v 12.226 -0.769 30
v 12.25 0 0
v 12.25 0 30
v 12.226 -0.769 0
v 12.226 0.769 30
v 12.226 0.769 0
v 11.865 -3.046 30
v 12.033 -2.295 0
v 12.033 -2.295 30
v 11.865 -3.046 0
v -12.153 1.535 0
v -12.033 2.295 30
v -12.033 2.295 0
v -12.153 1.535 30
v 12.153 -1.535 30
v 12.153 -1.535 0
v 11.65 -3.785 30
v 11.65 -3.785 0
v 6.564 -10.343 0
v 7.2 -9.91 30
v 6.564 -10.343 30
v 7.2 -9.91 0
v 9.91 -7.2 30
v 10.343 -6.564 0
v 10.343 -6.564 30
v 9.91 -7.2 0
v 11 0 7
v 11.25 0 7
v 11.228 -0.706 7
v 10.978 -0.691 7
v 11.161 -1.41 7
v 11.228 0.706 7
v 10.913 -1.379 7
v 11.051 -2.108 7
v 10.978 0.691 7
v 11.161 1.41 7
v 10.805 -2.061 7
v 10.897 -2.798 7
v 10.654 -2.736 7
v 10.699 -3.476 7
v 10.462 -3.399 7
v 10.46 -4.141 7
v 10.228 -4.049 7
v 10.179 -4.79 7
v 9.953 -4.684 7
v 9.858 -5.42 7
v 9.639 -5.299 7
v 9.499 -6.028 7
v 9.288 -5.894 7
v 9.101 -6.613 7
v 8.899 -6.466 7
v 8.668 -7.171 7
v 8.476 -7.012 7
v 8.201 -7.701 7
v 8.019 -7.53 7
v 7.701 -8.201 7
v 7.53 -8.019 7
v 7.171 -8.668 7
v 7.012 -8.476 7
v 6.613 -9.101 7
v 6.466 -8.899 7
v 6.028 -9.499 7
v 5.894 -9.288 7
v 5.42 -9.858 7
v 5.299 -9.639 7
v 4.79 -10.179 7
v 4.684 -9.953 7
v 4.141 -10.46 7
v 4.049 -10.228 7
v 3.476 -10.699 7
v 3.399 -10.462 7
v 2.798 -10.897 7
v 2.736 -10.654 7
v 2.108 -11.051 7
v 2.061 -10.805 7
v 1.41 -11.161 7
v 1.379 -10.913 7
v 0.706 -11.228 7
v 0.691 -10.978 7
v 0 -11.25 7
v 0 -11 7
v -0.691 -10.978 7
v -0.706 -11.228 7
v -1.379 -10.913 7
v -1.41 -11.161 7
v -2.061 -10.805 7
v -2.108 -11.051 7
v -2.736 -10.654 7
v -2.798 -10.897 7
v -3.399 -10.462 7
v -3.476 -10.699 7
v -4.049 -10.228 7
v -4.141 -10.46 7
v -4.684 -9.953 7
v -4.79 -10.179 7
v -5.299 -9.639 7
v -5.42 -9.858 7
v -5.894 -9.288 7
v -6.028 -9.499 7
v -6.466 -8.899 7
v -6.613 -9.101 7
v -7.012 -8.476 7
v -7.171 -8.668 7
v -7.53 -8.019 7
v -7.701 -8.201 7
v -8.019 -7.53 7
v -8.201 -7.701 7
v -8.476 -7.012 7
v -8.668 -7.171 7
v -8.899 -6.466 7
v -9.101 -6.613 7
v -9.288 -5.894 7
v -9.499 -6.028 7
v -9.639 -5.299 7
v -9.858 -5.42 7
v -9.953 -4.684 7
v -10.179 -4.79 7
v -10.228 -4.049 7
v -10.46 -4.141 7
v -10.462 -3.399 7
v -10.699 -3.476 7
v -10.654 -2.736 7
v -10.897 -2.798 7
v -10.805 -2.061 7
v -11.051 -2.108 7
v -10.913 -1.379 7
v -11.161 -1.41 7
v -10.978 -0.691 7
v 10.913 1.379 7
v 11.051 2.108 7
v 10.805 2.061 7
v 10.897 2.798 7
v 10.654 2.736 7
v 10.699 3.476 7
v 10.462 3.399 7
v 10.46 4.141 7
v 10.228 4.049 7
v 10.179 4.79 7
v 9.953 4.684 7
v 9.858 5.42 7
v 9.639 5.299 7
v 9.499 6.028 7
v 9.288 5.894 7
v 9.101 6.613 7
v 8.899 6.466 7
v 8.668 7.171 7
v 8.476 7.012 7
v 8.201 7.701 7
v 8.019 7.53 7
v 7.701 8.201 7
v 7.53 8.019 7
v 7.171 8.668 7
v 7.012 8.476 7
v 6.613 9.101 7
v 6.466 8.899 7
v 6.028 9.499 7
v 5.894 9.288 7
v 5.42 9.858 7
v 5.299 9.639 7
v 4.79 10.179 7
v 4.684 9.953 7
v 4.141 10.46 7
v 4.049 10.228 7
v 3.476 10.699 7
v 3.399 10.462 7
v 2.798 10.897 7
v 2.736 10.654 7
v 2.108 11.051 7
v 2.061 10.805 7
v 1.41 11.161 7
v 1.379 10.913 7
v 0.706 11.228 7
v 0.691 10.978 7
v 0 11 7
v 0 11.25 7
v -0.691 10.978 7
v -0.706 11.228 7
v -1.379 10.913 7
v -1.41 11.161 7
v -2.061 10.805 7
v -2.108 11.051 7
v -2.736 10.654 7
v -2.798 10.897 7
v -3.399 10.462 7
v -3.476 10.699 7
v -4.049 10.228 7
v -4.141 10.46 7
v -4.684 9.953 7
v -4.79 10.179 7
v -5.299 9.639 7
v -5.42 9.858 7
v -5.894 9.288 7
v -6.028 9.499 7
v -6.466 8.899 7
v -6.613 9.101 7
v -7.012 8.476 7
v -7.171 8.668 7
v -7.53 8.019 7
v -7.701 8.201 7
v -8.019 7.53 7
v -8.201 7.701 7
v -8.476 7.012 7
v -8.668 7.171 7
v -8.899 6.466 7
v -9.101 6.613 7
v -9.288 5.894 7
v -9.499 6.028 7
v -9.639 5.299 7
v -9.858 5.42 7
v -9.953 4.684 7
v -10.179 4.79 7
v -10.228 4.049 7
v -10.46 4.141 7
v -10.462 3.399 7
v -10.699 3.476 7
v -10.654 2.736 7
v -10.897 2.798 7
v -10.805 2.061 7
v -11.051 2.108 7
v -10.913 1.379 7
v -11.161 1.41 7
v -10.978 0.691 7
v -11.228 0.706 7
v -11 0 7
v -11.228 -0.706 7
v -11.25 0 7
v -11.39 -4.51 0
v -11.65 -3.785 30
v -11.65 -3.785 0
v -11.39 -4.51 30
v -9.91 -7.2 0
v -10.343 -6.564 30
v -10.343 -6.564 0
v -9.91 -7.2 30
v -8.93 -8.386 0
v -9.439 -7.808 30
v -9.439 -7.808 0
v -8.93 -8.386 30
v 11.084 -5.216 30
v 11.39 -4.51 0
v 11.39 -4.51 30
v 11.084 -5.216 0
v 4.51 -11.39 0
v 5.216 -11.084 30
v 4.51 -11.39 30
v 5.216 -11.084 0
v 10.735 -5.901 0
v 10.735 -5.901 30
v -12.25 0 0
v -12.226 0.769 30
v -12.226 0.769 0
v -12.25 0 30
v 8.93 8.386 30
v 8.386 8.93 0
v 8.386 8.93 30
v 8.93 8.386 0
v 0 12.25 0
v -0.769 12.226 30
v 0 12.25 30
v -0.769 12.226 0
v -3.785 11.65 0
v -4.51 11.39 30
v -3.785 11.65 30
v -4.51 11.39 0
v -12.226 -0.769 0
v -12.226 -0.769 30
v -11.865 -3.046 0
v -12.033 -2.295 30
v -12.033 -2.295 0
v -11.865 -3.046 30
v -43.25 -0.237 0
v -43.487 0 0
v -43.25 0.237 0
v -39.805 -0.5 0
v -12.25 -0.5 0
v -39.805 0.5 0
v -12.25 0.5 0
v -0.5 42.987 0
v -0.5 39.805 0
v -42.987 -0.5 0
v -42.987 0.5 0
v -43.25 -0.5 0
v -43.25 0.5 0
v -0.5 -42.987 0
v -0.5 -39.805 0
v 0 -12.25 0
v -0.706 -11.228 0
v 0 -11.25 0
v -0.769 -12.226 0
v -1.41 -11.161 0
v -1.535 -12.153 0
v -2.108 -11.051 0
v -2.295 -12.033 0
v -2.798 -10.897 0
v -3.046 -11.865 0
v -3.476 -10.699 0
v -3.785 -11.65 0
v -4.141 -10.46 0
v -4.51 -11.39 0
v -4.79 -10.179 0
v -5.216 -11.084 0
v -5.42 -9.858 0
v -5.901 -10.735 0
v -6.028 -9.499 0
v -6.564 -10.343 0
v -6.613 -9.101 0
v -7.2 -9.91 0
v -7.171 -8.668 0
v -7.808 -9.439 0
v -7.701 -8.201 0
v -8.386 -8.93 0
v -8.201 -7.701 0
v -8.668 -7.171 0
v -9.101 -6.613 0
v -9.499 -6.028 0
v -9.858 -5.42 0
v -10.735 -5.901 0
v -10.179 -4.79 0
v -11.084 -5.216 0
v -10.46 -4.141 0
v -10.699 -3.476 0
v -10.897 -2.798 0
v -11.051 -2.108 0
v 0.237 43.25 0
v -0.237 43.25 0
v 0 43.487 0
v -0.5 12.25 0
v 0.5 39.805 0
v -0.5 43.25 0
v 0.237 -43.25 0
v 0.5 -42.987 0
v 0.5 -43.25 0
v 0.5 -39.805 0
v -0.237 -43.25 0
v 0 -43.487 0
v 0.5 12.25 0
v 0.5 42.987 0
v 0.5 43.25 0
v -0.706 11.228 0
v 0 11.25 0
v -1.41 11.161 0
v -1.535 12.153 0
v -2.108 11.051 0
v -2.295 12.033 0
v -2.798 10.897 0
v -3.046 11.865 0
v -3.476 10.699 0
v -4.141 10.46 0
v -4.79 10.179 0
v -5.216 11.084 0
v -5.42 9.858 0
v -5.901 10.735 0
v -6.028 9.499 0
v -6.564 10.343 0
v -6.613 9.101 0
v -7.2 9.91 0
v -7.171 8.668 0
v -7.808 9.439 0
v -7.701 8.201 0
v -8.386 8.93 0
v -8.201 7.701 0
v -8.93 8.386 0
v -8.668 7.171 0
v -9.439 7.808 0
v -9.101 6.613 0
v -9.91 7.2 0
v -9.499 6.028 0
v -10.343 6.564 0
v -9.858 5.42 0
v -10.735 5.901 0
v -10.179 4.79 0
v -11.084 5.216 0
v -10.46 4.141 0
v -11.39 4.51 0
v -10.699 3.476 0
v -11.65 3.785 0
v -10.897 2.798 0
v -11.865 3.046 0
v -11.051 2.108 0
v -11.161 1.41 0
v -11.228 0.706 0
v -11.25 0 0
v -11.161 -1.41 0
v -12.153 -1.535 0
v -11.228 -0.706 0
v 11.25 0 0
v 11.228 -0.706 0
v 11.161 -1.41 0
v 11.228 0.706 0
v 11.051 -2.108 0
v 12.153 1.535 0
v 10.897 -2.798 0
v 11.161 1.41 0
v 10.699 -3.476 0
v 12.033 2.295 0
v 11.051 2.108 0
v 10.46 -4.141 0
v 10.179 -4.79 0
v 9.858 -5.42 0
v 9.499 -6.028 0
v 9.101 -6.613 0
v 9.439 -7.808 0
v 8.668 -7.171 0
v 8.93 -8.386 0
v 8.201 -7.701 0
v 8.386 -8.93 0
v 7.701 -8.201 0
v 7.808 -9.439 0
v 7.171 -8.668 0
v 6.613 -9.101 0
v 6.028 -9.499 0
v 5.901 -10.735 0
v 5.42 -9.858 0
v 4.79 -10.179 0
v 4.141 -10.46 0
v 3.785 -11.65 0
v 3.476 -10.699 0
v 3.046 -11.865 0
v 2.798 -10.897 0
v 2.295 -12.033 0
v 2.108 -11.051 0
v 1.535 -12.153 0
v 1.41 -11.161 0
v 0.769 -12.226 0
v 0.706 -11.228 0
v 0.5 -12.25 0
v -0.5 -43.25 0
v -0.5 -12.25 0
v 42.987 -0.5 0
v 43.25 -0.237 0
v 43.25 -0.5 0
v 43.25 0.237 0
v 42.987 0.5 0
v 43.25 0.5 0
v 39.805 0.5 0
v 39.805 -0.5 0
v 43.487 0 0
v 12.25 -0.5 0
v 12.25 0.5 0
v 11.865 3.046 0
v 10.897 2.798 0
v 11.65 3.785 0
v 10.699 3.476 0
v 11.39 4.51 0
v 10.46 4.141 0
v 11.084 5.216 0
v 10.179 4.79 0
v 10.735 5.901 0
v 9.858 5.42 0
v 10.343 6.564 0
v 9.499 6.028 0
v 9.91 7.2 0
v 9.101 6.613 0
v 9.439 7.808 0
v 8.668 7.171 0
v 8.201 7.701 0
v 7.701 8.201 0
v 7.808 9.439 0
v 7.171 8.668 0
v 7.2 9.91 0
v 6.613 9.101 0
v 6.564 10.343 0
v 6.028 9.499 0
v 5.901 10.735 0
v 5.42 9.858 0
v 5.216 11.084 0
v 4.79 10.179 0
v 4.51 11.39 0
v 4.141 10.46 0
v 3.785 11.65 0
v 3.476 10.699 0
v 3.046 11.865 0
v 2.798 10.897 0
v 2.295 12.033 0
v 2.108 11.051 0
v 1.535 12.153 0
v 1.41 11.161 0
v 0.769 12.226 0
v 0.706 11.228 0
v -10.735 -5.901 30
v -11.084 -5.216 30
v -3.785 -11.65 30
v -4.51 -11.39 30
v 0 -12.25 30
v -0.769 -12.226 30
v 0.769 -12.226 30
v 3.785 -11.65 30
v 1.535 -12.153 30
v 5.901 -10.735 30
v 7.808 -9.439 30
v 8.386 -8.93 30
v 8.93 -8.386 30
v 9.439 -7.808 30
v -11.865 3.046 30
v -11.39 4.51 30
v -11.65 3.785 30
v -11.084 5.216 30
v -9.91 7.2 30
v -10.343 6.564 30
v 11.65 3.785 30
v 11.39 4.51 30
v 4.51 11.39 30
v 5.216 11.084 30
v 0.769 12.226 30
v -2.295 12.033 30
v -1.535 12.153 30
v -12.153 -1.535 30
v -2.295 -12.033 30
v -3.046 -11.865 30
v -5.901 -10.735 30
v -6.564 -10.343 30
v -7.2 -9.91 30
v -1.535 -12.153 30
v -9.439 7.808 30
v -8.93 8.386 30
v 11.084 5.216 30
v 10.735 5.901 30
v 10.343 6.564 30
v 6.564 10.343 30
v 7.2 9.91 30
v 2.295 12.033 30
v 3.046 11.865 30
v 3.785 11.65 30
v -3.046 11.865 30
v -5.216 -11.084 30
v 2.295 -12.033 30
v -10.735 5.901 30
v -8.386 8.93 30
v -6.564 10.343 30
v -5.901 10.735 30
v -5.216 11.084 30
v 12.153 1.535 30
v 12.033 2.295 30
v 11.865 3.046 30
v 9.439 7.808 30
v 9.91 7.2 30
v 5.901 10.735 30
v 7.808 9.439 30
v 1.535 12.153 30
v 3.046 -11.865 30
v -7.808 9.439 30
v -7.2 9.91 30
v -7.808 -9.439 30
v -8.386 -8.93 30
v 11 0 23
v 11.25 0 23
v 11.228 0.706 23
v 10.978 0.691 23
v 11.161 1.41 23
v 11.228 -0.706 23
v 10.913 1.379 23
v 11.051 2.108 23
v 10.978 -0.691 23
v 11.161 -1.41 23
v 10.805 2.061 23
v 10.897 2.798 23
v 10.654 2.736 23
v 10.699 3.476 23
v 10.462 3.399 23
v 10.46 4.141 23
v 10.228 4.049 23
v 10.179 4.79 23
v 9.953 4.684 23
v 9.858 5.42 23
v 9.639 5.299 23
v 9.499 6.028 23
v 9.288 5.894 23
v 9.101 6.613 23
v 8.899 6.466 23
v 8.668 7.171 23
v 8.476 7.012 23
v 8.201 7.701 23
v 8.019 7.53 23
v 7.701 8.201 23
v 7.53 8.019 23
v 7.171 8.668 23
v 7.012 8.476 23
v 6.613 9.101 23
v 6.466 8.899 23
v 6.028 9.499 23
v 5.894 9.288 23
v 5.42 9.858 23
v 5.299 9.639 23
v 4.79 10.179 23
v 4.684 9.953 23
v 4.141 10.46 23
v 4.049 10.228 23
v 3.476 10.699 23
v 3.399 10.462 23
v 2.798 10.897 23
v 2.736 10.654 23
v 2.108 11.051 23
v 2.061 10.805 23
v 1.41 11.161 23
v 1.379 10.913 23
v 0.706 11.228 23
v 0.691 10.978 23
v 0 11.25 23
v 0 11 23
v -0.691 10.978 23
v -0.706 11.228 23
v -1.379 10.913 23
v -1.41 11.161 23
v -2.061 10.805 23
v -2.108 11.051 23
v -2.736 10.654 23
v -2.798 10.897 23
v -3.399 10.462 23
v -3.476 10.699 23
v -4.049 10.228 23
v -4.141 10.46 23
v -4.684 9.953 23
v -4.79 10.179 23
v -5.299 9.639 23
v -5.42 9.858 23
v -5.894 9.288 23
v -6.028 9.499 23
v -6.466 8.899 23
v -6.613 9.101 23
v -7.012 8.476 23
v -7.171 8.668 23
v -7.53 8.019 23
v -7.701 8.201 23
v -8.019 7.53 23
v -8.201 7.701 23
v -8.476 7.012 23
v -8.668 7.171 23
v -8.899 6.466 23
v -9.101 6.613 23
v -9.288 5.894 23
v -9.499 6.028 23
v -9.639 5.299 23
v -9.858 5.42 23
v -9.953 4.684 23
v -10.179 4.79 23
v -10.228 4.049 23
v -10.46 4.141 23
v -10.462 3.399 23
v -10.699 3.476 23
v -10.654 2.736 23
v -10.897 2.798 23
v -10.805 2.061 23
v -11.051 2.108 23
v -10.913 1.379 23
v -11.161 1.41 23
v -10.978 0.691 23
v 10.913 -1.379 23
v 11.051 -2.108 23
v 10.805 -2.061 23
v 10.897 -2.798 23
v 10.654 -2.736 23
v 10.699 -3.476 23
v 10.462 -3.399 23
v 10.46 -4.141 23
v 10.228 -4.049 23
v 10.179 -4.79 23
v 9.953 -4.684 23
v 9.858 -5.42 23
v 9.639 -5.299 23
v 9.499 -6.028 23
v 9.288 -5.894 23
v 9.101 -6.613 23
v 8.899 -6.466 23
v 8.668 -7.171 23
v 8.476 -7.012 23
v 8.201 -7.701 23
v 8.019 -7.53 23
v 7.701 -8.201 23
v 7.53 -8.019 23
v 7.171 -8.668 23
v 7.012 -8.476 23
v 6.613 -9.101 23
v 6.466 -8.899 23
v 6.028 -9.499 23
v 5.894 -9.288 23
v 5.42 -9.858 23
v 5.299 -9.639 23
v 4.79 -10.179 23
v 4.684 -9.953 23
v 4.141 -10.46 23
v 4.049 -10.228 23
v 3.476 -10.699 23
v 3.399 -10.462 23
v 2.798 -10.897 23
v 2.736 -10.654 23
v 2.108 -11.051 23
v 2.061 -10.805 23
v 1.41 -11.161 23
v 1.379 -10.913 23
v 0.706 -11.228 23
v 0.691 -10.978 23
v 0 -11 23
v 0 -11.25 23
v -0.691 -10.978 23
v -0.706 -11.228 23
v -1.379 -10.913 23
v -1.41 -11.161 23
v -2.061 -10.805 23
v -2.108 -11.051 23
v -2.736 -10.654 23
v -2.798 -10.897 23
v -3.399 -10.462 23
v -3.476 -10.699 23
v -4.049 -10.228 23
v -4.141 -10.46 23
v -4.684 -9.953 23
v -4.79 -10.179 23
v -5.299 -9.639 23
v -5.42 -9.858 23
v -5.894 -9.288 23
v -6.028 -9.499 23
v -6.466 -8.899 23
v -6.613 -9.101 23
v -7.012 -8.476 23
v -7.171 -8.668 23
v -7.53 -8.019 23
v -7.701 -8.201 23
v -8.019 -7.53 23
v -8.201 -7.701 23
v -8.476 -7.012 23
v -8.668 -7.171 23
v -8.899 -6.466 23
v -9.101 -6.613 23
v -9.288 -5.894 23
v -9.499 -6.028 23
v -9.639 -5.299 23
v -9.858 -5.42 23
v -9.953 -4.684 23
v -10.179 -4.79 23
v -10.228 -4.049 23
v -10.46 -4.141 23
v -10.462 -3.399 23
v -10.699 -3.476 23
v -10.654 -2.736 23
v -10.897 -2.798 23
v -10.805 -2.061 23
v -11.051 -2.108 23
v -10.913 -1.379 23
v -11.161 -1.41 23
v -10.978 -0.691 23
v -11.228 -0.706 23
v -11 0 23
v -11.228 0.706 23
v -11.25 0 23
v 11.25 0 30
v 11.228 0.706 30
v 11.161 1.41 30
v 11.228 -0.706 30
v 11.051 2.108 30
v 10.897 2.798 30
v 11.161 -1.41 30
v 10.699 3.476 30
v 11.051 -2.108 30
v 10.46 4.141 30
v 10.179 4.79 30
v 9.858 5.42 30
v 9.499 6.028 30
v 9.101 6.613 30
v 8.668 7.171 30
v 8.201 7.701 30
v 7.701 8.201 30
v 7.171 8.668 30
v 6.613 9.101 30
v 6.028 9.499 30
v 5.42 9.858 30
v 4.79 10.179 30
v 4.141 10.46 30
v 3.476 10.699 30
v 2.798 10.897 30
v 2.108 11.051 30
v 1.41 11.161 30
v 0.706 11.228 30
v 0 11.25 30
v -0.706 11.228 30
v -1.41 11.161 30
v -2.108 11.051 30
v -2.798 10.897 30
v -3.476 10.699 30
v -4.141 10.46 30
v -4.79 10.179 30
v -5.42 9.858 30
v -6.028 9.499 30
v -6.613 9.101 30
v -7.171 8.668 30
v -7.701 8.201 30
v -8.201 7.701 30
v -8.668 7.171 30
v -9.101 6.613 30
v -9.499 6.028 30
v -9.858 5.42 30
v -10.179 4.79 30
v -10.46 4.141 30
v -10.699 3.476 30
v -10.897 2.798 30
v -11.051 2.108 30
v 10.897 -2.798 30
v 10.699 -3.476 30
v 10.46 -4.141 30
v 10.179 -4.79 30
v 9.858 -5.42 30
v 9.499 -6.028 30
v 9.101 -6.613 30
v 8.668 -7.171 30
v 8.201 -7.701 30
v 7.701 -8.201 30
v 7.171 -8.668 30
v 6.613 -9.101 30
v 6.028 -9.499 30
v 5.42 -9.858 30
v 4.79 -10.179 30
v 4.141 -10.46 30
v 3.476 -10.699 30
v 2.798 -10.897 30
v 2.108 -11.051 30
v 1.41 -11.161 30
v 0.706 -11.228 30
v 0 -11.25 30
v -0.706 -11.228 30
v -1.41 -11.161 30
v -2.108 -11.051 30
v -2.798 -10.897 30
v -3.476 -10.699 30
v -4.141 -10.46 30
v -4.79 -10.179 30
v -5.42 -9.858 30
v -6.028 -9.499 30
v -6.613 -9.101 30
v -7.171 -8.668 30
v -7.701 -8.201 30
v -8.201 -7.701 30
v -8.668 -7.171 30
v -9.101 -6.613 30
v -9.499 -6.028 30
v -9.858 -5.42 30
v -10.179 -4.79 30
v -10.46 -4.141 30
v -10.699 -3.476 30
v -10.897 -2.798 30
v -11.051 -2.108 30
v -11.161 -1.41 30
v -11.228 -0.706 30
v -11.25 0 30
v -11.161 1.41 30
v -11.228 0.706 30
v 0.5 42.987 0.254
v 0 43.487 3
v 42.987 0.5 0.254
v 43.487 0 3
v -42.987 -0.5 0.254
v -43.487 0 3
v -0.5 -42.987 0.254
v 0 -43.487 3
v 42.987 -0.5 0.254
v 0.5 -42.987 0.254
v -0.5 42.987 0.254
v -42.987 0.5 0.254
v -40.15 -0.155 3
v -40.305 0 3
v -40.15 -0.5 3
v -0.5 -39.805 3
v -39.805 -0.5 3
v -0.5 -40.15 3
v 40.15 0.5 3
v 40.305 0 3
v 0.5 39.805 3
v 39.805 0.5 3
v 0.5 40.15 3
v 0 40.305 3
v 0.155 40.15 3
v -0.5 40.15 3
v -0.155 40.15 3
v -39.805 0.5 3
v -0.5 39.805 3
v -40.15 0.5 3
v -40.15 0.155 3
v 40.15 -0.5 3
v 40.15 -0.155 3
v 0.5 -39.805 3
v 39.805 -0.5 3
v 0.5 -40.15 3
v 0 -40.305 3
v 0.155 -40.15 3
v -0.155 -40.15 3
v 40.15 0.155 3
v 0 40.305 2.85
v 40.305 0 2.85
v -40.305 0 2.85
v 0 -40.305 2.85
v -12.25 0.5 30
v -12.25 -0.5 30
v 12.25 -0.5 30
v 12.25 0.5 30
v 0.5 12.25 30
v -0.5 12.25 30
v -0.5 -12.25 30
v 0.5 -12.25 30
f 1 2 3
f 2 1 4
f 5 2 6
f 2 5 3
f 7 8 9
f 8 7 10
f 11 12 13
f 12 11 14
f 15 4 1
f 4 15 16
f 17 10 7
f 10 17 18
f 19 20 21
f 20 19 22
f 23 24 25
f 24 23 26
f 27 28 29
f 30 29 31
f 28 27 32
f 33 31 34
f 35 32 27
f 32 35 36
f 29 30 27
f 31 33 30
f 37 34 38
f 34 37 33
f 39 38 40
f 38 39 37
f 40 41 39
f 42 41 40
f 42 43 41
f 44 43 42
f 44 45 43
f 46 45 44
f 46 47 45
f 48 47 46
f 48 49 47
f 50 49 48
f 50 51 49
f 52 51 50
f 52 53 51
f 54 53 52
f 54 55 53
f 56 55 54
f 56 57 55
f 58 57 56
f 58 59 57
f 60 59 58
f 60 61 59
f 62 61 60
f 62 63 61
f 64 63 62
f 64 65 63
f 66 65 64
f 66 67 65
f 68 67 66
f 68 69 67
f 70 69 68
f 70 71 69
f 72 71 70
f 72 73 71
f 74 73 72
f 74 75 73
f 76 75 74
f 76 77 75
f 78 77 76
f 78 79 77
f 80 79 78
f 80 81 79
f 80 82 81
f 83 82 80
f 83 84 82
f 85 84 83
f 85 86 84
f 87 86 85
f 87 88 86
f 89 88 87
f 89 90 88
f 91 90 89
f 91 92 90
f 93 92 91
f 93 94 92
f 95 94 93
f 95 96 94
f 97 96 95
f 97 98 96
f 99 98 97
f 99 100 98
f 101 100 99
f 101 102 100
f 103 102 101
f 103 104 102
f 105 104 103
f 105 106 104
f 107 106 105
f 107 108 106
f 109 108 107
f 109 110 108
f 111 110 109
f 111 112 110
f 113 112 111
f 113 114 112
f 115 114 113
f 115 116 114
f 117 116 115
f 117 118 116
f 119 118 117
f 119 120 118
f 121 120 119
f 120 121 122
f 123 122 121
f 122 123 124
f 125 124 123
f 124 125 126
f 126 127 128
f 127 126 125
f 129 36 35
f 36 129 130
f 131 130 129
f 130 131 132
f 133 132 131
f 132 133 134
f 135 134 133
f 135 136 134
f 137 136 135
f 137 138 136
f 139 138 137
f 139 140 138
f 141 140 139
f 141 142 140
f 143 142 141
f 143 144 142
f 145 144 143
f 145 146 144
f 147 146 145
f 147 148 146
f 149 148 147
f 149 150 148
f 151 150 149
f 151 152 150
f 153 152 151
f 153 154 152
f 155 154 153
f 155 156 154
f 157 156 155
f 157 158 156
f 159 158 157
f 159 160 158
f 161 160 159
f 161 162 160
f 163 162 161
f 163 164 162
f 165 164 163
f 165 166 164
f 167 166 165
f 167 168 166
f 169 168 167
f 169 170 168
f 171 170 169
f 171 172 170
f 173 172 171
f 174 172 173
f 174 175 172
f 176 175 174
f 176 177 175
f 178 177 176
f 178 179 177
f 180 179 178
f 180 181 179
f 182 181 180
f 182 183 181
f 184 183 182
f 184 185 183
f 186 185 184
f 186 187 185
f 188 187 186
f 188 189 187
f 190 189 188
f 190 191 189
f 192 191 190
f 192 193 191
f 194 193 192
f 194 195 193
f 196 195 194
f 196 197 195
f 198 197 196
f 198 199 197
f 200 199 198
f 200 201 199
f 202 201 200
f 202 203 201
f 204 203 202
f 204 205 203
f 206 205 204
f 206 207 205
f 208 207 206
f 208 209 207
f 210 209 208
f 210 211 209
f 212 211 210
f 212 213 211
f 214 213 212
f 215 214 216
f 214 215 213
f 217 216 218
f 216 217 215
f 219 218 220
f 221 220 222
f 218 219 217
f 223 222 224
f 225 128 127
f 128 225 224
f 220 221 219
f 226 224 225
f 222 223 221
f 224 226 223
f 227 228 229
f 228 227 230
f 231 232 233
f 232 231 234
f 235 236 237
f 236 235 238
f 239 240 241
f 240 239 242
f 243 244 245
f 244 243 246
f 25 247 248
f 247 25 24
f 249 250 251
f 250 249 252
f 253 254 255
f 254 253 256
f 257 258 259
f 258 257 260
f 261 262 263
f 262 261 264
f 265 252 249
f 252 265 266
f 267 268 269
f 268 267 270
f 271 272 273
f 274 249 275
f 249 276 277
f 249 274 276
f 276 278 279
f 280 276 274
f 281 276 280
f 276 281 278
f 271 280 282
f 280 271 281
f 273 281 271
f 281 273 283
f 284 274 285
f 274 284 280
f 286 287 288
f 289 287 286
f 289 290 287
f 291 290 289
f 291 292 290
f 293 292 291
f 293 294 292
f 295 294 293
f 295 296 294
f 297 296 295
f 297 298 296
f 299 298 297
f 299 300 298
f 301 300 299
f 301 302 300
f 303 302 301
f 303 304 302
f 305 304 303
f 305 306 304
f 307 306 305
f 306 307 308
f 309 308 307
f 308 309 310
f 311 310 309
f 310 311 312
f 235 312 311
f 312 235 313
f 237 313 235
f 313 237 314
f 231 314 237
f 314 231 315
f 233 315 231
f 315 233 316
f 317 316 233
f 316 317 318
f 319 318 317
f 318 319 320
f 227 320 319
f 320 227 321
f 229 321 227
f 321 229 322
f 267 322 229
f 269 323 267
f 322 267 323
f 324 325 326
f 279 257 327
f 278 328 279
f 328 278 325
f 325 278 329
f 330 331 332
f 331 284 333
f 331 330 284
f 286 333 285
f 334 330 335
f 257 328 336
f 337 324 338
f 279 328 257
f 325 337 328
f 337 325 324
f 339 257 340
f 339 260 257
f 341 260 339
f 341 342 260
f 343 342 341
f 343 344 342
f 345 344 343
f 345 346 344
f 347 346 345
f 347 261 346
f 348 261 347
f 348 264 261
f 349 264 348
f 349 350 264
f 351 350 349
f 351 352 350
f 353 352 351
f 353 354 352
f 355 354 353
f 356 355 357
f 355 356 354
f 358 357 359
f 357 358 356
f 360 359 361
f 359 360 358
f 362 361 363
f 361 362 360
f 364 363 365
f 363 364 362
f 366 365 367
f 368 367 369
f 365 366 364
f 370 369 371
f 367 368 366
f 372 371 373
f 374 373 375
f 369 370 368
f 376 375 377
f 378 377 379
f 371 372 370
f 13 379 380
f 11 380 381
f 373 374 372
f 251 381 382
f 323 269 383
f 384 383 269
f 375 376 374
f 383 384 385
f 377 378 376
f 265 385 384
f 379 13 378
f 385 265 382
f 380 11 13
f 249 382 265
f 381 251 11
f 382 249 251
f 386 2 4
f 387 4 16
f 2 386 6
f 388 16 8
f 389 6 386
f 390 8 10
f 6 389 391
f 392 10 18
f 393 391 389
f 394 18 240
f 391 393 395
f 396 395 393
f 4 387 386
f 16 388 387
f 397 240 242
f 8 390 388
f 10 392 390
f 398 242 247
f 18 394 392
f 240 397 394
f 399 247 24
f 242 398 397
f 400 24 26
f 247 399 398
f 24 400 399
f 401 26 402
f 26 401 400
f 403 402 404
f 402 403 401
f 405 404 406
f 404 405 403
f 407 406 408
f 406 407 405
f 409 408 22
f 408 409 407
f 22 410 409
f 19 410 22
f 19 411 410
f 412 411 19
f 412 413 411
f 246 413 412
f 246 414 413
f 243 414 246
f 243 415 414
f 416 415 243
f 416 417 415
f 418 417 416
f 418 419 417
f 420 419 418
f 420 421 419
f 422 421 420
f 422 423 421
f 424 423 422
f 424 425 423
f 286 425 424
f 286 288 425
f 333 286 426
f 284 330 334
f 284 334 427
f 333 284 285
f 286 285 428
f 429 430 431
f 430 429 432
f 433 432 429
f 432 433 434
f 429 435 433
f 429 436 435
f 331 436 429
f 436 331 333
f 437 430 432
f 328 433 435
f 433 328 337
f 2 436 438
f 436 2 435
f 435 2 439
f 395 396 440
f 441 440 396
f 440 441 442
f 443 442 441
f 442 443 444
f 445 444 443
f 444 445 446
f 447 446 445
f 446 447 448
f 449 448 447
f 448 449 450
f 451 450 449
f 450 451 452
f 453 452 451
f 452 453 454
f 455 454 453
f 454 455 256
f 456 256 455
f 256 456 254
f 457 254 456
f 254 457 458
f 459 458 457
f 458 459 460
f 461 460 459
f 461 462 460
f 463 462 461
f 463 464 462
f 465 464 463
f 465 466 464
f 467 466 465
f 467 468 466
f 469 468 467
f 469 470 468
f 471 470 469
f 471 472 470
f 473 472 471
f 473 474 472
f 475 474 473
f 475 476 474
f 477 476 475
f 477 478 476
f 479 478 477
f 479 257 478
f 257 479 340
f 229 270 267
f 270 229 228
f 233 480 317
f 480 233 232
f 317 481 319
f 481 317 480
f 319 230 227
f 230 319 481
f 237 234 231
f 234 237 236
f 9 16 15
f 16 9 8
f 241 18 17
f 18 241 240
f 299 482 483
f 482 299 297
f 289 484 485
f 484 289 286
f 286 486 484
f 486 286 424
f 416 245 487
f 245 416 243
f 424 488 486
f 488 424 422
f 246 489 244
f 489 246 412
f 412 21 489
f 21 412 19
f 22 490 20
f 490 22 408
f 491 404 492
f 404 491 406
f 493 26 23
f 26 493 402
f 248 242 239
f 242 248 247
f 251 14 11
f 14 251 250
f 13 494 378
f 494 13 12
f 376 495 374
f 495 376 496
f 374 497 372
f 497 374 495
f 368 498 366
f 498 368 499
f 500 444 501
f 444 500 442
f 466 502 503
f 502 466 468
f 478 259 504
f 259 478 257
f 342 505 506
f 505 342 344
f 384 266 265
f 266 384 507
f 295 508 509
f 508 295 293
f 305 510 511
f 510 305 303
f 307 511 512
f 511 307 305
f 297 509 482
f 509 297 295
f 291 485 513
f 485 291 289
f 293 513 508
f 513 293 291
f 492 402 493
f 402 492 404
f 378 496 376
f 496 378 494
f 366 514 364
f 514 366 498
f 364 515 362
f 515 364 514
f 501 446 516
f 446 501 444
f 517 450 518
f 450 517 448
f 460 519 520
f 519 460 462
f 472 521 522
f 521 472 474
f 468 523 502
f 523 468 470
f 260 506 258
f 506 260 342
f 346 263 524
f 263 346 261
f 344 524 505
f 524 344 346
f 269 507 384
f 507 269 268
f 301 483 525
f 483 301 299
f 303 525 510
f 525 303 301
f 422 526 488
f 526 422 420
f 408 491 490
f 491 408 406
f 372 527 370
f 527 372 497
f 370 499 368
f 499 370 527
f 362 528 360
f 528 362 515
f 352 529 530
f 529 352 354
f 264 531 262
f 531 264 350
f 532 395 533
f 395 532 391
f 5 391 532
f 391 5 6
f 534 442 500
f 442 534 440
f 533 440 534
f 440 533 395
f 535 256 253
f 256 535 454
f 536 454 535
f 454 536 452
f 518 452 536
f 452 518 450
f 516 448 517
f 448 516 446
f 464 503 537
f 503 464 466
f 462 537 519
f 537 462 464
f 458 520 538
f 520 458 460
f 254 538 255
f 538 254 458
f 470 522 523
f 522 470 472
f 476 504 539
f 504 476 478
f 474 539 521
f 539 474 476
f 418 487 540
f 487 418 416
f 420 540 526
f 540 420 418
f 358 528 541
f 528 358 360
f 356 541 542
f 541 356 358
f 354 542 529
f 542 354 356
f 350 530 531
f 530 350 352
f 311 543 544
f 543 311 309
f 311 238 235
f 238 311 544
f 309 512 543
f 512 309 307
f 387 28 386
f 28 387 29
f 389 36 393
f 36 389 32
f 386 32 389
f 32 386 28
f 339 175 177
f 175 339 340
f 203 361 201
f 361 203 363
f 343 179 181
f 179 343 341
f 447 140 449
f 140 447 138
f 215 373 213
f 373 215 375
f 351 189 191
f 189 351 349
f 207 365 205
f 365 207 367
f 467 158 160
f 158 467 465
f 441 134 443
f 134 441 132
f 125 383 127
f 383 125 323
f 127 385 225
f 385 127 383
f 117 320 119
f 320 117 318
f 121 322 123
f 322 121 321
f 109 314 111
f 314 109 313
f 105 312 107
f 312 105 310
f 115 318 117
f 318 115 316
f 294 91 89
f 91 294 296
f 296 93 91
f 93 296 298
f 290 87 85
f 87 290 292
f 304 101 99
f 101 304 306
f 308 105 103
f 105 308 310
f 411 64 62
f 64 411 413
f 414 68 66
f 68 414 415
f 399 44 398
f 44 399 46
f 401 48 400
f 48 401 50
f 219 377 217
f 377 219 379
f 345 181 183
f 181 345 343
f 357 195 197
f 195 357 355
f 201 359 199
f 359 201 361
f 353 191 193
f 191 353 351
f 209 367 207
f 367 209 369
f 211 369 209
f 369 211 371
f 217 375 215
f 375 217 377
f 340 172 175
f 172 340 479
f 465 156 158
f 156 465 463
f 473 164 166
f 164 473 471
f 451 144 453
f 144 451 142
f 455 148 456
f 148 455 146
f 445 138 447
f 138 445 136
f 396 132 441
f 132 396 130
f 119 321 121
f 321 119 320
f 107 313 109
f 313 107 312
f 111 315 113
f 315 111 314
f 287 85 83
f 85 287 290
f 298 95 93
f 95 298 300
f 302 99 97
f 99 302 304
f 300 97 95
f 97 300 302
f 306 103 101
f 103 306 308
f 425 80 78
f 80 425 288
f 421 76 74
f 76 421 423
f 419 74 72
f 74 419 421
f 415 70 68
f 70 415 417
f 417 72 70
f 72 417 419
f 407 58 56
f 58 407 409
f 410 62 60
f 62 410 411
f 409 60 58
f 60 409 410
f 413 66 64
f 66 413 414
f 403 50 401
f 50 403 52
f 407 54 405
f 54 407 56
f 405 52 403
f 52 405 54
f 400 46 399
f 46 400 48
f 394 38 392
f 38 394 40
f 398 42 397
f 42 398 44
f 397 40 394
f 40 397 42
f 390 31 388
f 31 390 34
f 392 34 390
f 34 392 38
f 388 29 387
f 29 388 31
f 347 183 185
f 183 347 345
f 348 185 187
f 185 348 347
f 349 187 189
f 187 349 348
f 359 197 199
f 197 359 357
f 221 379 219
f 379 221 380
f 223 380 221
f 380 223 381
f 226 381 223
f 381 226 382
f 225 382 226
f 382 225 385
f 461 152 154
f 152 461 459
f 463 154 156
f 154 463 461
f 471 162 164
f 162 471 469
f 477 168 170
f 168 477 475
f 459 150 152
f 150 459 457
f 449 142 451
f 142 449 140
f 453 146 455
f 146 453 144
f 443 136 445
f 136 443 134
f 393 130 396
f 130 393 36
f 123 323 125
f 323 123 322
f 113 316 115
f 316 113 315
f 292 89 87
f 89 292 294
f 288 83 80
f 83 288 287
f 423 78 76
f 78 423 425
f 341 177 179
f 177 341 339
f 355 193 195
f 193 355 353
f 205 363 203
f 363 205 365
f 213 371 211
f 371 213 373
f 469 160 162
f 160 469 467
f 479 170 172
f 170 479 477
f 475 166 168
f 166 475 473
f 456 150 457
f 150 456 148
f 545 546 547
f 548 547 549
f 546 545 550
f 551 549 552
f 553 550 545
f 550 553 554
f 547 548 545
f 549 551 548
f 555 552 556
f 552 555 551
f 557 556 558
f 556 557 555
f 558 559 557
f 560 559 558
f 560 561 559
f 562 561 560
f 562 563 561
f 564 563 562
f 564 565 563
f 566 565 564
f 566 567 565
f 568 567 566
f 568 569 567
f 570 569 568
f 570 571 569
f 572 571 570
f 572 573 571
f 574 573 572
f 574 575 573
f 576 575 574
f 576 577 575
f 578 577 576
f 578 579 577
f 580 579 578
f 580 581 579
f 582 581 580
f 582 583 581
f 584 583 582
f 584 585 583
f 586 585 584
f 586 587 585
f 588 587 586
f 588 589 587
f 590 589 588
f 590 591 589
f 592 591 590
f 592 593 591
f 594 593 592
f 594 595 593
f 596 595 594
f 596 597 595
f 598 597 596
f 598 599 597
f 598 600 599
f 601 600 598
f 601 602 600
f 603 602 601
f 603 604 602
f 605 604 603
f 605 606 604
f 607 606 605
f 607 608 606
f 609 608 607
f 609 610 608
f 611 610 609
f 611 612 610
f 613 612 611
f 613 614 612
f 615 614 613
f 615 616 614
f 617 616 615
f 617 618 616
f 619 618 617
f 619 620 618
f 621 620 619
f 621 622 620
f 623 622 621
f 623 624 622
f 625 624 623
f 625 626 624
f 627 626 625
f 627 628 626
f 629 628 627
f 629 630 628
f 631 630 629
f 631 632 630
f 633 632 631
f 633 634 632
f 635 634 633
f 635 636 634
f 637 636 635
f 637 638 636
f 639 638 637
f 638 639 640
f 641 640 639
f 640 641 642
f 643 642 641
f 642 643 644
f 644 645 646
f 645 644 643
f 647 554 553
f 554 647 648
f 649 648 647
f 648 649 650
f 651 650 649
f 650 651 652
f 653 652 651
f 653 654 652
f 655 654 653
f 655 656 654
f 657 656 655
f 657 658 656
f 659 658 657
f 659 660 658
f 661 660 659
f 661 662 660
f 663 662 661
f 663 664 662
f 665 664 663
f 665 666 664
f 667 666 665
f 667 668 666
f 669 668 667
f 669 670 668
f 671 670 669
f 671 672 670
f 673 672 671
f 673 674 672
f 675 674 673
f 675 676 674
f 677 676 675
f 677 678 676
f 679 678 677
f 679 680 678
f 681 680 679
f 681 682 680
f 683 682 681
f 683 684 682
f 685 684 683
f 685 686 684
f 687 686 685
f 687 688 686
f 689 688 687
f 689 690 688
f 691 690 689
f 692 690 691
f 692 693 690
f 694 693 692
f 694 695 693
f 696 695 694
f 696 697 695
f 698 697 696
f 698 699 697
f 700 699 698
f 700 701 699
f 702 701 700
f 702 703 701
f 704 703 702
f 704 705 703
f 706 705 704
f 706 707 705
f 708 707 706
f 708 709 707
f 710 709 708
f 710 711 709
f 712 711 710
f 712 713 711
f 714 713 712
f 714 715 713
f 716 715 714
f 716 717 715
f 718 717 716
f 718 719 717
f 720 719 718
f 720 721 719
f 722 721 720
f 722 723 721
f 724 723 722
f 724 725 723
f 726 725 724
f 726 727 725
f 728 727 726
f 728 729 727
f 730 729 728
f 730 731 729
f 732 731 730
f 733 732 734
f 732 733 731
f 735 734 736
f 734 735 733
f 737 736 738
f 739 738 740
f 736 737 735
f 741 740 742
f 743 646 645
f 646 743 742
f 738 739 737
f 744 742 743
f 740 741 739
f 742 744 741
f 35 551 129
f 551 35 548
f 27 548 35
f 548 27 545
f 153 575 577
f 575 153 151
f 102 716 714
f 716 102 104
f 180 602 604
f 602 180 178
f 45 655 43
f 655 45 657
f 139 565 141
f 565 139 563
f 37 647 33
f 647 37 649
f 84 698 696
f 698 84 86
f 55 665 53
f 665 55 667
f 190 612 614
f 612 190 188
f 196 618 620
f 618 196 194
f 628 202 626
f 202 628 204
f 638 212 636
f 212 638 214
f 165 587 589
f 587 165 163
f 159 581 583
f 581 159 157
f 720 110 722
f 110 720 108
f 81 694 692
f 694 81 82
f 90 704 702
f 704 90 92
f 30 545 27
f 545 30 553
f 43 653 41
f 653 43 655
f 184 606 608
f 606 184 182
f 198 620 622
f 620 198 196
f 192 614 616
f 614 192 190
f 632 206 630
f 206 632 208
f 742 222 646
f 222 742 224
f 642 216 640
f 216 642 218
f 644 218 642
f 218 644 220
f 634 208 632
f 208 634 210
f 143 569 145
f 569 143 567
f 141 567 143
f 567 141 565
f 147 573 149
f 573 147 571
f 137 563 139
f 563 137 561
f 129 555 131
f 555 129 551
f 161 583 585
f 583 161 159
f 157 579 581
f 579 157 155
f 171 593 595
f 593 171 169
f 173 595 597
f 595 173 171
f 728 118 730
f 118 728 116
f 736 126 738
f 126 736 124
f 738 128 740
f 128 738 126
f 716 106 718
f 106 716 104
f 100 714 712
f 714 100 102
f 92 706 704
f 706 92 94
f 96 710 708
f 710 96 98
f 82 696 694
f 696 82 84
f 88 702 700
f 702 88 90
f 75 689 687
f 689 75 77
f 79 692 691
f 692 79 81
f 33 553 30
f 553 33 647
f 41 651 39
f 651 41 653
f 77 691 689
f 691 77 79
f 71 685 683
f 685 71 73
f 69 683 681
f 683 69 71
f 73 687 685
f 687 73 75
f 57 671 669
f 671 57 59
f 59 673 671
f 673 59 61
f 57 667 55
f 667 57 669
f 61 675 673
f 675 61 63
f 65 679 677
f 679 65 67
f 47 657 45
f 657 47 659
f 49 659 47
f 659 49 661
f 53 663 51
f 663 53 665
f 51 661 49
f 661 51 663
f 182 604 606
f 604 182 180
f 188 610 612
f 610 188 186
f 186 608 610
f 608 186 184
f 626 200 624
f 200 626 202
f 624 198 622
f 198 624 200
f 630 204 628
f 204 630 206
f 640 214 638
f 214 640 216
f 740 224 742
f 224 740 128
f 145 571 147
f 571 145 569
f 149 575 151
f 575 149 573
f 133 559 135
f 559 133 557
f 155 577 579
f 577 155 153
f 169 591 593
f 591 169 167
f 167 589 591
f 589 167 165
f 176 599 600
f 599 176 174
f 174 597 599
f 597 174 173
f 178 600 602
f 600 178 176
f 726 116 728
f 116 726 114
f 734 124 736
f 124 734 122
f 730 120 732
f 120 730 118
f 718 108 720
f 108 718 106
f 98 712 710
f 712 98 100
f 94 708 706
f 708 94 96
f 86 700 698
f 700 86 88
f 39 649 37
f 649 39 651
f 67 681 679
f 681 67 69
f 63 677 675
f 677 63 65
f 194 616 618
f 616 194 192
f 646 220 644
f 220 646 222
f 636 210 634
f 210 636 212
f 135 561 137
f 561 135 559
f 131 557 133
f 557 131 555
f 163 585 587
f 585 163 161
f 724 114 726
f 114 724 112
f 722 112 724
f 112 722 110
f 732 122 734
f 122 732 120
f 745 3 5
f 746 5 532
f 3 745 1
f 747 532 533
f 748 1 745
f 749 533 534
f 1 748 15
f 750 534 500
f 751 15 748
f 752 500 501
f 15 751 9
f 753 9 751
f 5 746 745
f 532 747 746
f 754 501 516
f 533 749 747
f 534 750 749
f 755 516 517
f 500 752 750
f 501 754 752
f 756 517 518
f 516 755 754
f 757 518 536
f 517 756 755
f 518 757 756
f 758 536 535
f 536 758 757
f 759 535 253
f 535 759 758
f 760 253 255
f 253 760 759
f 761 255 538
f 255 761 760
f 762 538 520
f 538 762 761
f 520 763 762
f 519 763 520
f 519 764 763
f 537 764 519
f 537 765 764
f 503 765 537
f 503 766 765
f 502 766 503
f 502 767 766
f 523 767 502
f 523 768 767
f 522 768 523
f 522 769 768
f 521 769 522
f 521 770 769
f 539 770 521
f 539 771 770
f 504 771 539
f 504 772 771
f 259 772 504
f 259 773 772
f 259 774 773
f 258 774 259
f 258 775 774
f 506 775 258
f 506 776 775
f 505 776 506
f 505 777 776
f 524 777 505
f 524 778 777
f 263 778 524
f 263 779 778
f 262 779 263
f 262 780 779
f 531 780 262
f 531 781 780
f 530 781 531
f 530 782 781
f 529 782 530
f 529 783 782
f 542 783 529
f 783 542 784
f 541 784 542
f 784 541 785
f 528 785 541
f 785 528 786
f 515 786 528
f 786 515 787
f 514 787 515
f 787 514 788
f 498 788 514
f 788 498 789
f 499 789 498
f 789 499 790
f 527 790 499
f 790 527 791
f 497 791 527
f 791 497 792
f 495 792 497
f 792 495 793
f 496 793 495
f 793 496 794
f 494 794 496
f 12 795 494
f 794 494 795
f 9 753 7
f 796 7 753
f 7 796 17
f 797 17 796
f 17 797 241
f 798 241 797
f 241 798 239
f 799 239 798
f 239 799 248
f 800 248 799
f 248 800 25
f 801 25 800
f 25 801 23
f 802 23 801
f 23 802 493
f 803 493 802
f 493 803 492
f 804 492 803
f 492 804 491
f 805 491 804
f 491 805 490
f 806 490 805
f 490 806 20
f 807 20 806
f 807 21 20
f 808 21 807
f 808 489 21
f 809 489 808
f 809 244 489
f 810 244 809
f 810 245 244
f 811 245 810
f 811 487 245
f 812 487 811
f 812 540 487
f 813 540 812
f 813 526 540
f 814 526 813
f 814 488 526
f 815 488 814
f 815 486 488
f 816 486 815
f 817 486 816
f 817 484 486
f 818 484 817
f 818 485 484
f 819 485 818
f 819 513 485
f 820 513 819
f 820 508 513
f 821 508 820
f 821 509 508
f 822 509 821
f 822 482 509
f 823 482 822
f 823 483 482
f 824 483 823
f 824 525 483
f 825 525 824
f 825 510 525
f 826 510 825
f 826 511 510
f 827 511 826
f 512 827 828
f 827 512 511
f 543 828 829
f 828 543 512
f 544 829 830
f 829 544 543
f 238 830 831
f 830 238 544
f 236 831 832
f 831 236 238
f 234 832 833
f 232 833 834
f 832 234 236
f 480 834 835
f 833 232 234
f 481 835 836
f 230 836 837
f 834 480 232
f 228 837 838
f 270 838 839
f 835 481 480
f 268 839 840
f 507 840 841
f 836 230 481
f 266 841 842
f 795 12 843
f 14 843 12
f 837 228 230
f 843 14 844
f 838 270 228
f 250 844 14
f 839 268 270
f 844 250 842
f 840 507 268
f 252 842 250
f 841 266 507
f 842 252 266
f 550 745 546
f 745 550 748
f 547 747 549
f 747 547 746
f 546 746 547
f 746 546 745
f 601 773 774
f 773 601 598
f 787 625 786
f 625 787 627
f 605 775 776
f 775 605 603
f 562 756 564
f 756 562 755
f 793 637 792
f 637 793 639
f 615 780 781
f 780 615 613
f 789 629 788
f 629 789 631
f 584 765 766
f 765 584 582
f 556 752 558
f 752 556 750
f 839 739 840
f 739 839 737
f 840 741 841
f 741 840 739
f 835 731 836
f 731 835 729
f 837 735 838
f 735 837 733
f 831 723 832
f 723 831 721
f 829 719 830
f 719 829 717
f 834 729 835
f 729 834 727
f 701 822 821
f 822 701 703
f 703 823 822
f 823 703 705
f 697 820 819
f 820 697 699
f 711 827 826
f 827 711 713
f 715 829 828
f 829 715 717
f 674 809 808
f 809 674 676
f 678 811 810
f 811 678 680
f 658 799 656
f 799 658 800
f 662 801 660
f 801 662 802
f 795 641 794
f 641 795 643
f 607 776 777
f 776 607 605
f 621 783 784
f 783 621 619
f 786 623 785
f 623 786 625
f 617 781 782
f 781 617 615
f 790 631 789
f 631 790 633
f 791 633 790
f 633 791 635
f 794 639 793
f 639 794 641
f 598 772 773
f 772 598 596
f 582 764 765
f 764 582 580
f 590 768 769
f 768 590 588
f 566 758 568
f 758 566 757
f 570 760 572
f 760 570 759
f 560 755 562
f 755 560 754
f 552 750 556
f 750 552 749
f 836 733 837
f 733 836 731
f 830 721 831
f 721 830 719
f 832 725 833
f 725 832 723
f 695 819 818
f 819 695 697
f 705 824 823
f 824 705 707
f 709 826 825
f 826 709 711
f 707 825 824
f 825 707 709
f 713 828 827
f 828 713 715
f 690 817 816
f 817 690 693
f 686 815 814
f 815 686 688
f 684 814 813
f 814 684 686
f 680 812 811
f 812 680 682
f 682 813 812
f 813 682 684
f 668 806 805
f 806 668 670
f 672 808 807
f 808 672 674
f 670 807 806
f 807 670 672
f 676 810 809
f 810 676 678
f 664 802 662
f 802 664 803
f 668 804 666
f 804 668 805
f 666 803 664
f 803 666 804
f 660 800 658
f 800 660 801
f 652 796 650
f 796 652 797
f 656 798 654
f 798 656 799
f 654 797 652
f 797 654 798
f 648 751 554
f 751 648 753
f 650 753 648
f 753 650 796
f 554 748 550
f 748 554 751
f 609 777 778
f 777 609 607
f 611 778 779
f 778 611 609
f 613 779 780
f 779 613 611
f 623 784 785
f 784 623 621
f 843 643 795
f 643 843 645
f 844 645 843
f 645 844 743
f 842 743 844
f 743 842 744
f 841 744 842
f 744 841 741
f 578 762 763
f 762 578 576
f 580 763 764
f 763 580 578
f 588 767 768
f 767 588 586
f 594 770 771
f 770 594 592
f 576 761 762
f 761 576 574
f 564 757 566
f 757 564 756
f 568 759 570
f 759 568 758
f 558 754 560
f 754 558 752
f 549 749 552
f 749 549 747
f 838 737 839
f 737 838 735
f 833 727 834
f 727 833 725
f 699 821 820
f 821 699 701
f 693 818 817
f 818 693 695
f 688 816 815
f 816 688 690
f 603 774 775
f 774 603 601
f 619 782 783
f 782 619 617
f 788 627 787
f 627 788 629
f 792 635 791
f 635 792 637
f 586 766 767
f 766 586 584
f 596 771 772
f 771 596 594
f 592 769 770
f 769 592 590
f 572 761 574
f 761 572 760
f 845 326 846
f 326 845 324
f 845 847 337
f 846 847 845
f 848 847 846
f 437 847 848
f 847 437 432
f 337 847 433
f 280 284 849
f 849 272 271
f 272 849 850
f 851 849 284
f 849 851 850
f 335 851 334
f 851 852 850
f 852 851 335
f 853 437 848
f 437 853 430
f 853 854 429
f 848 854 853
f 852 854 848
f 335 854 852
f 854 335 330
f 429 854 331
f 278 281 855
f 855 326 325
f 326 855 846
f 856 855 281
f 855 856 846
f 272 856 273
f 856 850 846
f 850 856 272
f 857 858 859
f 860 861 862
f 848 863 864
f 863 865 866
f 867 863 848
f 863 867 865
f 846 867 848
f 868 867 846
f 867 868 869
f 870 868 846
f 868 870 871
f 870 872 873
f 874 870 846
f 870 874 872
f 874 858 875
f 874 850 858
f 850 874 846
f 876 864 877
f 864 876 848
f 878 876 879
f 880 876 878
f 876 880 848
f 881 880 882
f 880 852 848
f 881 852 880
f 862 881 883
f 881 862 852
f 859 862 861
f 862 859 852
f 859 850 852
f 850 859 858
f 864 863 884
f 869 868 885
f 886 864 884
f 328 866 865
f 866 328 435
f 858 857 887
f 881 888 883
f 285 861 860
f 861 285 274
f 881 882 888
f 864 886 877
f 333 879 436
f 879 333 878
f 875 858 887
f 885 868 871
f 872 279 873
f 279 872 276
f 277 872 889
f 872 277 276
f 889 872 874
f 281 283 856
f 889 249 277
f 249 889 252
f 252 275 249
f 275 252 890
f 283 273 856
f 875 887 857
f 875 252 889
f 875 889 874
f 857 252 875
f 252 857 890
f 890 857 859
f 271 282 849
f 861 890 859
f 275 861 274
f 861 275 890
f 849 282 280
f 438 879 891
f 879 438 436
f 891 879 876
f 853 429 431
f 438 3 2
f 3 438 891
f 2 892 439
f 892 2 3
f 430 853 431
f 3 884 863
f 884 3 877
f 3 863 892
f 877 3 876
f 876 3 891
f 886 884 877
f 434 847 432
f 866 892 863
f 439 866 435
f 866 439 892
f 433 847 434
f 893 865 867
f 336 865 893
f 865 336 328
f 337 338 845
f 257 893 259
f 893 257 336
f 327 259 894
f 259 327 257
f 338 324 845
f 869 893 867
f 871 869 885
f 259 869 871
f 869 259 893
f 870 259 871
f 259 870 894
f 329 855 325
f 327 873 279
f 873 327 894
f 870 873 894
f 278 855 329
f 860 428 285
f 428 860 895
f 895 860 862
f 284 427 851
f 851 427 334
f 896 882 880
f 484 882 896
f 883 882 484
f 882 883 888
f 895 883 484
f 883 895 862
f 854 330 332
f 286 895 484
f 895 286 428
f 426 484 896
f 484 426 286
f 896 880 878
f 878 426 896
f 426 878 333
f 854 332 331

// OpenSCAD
module bearingInput(outerWidth=5, height=7, d = 22.5) {
difference() {
linear_extrude(height=height)
 circle($fn = 100, d = d + outerWidth);
    
translate([0,0,-2])
    linear_extrude(height=height+4)
        circle($fn = 100, d = d);
}
}

bearingInput(2);
translate([0,0,7])
    bearingInput(2.5, 30-7-7, 22);
translate([0,0,30-7])
bearingInput(2);


module wing() {
rotate([90,180,0])
linear_extrude(height=1)
    polygon(points=[[0,0], [31, 30], [0,30]]);
}

module _base(w= 61.5) {
    rotate([0,0,45])
    translate([-w/2,-w/2,0])
    linear_extrude(height=3)
    square([w, w]);
}

union() {
    translate([-12.25,0.5,30])
     wing();

    translate([12.25,-0.5,30])
    rotate([0,0,180])
    wing();

    translate([0.5,12.25,30])
    rotate([0,0,-90])
    wing();

    translate([-0.5,-12.25,30])
    rotate([0,0,90])
    wing();



    difference() {
    _base();
    scale([1, 1, 1.2])
    translate([0,0,-0.1])
    _base(w= 57);    
    }
}
